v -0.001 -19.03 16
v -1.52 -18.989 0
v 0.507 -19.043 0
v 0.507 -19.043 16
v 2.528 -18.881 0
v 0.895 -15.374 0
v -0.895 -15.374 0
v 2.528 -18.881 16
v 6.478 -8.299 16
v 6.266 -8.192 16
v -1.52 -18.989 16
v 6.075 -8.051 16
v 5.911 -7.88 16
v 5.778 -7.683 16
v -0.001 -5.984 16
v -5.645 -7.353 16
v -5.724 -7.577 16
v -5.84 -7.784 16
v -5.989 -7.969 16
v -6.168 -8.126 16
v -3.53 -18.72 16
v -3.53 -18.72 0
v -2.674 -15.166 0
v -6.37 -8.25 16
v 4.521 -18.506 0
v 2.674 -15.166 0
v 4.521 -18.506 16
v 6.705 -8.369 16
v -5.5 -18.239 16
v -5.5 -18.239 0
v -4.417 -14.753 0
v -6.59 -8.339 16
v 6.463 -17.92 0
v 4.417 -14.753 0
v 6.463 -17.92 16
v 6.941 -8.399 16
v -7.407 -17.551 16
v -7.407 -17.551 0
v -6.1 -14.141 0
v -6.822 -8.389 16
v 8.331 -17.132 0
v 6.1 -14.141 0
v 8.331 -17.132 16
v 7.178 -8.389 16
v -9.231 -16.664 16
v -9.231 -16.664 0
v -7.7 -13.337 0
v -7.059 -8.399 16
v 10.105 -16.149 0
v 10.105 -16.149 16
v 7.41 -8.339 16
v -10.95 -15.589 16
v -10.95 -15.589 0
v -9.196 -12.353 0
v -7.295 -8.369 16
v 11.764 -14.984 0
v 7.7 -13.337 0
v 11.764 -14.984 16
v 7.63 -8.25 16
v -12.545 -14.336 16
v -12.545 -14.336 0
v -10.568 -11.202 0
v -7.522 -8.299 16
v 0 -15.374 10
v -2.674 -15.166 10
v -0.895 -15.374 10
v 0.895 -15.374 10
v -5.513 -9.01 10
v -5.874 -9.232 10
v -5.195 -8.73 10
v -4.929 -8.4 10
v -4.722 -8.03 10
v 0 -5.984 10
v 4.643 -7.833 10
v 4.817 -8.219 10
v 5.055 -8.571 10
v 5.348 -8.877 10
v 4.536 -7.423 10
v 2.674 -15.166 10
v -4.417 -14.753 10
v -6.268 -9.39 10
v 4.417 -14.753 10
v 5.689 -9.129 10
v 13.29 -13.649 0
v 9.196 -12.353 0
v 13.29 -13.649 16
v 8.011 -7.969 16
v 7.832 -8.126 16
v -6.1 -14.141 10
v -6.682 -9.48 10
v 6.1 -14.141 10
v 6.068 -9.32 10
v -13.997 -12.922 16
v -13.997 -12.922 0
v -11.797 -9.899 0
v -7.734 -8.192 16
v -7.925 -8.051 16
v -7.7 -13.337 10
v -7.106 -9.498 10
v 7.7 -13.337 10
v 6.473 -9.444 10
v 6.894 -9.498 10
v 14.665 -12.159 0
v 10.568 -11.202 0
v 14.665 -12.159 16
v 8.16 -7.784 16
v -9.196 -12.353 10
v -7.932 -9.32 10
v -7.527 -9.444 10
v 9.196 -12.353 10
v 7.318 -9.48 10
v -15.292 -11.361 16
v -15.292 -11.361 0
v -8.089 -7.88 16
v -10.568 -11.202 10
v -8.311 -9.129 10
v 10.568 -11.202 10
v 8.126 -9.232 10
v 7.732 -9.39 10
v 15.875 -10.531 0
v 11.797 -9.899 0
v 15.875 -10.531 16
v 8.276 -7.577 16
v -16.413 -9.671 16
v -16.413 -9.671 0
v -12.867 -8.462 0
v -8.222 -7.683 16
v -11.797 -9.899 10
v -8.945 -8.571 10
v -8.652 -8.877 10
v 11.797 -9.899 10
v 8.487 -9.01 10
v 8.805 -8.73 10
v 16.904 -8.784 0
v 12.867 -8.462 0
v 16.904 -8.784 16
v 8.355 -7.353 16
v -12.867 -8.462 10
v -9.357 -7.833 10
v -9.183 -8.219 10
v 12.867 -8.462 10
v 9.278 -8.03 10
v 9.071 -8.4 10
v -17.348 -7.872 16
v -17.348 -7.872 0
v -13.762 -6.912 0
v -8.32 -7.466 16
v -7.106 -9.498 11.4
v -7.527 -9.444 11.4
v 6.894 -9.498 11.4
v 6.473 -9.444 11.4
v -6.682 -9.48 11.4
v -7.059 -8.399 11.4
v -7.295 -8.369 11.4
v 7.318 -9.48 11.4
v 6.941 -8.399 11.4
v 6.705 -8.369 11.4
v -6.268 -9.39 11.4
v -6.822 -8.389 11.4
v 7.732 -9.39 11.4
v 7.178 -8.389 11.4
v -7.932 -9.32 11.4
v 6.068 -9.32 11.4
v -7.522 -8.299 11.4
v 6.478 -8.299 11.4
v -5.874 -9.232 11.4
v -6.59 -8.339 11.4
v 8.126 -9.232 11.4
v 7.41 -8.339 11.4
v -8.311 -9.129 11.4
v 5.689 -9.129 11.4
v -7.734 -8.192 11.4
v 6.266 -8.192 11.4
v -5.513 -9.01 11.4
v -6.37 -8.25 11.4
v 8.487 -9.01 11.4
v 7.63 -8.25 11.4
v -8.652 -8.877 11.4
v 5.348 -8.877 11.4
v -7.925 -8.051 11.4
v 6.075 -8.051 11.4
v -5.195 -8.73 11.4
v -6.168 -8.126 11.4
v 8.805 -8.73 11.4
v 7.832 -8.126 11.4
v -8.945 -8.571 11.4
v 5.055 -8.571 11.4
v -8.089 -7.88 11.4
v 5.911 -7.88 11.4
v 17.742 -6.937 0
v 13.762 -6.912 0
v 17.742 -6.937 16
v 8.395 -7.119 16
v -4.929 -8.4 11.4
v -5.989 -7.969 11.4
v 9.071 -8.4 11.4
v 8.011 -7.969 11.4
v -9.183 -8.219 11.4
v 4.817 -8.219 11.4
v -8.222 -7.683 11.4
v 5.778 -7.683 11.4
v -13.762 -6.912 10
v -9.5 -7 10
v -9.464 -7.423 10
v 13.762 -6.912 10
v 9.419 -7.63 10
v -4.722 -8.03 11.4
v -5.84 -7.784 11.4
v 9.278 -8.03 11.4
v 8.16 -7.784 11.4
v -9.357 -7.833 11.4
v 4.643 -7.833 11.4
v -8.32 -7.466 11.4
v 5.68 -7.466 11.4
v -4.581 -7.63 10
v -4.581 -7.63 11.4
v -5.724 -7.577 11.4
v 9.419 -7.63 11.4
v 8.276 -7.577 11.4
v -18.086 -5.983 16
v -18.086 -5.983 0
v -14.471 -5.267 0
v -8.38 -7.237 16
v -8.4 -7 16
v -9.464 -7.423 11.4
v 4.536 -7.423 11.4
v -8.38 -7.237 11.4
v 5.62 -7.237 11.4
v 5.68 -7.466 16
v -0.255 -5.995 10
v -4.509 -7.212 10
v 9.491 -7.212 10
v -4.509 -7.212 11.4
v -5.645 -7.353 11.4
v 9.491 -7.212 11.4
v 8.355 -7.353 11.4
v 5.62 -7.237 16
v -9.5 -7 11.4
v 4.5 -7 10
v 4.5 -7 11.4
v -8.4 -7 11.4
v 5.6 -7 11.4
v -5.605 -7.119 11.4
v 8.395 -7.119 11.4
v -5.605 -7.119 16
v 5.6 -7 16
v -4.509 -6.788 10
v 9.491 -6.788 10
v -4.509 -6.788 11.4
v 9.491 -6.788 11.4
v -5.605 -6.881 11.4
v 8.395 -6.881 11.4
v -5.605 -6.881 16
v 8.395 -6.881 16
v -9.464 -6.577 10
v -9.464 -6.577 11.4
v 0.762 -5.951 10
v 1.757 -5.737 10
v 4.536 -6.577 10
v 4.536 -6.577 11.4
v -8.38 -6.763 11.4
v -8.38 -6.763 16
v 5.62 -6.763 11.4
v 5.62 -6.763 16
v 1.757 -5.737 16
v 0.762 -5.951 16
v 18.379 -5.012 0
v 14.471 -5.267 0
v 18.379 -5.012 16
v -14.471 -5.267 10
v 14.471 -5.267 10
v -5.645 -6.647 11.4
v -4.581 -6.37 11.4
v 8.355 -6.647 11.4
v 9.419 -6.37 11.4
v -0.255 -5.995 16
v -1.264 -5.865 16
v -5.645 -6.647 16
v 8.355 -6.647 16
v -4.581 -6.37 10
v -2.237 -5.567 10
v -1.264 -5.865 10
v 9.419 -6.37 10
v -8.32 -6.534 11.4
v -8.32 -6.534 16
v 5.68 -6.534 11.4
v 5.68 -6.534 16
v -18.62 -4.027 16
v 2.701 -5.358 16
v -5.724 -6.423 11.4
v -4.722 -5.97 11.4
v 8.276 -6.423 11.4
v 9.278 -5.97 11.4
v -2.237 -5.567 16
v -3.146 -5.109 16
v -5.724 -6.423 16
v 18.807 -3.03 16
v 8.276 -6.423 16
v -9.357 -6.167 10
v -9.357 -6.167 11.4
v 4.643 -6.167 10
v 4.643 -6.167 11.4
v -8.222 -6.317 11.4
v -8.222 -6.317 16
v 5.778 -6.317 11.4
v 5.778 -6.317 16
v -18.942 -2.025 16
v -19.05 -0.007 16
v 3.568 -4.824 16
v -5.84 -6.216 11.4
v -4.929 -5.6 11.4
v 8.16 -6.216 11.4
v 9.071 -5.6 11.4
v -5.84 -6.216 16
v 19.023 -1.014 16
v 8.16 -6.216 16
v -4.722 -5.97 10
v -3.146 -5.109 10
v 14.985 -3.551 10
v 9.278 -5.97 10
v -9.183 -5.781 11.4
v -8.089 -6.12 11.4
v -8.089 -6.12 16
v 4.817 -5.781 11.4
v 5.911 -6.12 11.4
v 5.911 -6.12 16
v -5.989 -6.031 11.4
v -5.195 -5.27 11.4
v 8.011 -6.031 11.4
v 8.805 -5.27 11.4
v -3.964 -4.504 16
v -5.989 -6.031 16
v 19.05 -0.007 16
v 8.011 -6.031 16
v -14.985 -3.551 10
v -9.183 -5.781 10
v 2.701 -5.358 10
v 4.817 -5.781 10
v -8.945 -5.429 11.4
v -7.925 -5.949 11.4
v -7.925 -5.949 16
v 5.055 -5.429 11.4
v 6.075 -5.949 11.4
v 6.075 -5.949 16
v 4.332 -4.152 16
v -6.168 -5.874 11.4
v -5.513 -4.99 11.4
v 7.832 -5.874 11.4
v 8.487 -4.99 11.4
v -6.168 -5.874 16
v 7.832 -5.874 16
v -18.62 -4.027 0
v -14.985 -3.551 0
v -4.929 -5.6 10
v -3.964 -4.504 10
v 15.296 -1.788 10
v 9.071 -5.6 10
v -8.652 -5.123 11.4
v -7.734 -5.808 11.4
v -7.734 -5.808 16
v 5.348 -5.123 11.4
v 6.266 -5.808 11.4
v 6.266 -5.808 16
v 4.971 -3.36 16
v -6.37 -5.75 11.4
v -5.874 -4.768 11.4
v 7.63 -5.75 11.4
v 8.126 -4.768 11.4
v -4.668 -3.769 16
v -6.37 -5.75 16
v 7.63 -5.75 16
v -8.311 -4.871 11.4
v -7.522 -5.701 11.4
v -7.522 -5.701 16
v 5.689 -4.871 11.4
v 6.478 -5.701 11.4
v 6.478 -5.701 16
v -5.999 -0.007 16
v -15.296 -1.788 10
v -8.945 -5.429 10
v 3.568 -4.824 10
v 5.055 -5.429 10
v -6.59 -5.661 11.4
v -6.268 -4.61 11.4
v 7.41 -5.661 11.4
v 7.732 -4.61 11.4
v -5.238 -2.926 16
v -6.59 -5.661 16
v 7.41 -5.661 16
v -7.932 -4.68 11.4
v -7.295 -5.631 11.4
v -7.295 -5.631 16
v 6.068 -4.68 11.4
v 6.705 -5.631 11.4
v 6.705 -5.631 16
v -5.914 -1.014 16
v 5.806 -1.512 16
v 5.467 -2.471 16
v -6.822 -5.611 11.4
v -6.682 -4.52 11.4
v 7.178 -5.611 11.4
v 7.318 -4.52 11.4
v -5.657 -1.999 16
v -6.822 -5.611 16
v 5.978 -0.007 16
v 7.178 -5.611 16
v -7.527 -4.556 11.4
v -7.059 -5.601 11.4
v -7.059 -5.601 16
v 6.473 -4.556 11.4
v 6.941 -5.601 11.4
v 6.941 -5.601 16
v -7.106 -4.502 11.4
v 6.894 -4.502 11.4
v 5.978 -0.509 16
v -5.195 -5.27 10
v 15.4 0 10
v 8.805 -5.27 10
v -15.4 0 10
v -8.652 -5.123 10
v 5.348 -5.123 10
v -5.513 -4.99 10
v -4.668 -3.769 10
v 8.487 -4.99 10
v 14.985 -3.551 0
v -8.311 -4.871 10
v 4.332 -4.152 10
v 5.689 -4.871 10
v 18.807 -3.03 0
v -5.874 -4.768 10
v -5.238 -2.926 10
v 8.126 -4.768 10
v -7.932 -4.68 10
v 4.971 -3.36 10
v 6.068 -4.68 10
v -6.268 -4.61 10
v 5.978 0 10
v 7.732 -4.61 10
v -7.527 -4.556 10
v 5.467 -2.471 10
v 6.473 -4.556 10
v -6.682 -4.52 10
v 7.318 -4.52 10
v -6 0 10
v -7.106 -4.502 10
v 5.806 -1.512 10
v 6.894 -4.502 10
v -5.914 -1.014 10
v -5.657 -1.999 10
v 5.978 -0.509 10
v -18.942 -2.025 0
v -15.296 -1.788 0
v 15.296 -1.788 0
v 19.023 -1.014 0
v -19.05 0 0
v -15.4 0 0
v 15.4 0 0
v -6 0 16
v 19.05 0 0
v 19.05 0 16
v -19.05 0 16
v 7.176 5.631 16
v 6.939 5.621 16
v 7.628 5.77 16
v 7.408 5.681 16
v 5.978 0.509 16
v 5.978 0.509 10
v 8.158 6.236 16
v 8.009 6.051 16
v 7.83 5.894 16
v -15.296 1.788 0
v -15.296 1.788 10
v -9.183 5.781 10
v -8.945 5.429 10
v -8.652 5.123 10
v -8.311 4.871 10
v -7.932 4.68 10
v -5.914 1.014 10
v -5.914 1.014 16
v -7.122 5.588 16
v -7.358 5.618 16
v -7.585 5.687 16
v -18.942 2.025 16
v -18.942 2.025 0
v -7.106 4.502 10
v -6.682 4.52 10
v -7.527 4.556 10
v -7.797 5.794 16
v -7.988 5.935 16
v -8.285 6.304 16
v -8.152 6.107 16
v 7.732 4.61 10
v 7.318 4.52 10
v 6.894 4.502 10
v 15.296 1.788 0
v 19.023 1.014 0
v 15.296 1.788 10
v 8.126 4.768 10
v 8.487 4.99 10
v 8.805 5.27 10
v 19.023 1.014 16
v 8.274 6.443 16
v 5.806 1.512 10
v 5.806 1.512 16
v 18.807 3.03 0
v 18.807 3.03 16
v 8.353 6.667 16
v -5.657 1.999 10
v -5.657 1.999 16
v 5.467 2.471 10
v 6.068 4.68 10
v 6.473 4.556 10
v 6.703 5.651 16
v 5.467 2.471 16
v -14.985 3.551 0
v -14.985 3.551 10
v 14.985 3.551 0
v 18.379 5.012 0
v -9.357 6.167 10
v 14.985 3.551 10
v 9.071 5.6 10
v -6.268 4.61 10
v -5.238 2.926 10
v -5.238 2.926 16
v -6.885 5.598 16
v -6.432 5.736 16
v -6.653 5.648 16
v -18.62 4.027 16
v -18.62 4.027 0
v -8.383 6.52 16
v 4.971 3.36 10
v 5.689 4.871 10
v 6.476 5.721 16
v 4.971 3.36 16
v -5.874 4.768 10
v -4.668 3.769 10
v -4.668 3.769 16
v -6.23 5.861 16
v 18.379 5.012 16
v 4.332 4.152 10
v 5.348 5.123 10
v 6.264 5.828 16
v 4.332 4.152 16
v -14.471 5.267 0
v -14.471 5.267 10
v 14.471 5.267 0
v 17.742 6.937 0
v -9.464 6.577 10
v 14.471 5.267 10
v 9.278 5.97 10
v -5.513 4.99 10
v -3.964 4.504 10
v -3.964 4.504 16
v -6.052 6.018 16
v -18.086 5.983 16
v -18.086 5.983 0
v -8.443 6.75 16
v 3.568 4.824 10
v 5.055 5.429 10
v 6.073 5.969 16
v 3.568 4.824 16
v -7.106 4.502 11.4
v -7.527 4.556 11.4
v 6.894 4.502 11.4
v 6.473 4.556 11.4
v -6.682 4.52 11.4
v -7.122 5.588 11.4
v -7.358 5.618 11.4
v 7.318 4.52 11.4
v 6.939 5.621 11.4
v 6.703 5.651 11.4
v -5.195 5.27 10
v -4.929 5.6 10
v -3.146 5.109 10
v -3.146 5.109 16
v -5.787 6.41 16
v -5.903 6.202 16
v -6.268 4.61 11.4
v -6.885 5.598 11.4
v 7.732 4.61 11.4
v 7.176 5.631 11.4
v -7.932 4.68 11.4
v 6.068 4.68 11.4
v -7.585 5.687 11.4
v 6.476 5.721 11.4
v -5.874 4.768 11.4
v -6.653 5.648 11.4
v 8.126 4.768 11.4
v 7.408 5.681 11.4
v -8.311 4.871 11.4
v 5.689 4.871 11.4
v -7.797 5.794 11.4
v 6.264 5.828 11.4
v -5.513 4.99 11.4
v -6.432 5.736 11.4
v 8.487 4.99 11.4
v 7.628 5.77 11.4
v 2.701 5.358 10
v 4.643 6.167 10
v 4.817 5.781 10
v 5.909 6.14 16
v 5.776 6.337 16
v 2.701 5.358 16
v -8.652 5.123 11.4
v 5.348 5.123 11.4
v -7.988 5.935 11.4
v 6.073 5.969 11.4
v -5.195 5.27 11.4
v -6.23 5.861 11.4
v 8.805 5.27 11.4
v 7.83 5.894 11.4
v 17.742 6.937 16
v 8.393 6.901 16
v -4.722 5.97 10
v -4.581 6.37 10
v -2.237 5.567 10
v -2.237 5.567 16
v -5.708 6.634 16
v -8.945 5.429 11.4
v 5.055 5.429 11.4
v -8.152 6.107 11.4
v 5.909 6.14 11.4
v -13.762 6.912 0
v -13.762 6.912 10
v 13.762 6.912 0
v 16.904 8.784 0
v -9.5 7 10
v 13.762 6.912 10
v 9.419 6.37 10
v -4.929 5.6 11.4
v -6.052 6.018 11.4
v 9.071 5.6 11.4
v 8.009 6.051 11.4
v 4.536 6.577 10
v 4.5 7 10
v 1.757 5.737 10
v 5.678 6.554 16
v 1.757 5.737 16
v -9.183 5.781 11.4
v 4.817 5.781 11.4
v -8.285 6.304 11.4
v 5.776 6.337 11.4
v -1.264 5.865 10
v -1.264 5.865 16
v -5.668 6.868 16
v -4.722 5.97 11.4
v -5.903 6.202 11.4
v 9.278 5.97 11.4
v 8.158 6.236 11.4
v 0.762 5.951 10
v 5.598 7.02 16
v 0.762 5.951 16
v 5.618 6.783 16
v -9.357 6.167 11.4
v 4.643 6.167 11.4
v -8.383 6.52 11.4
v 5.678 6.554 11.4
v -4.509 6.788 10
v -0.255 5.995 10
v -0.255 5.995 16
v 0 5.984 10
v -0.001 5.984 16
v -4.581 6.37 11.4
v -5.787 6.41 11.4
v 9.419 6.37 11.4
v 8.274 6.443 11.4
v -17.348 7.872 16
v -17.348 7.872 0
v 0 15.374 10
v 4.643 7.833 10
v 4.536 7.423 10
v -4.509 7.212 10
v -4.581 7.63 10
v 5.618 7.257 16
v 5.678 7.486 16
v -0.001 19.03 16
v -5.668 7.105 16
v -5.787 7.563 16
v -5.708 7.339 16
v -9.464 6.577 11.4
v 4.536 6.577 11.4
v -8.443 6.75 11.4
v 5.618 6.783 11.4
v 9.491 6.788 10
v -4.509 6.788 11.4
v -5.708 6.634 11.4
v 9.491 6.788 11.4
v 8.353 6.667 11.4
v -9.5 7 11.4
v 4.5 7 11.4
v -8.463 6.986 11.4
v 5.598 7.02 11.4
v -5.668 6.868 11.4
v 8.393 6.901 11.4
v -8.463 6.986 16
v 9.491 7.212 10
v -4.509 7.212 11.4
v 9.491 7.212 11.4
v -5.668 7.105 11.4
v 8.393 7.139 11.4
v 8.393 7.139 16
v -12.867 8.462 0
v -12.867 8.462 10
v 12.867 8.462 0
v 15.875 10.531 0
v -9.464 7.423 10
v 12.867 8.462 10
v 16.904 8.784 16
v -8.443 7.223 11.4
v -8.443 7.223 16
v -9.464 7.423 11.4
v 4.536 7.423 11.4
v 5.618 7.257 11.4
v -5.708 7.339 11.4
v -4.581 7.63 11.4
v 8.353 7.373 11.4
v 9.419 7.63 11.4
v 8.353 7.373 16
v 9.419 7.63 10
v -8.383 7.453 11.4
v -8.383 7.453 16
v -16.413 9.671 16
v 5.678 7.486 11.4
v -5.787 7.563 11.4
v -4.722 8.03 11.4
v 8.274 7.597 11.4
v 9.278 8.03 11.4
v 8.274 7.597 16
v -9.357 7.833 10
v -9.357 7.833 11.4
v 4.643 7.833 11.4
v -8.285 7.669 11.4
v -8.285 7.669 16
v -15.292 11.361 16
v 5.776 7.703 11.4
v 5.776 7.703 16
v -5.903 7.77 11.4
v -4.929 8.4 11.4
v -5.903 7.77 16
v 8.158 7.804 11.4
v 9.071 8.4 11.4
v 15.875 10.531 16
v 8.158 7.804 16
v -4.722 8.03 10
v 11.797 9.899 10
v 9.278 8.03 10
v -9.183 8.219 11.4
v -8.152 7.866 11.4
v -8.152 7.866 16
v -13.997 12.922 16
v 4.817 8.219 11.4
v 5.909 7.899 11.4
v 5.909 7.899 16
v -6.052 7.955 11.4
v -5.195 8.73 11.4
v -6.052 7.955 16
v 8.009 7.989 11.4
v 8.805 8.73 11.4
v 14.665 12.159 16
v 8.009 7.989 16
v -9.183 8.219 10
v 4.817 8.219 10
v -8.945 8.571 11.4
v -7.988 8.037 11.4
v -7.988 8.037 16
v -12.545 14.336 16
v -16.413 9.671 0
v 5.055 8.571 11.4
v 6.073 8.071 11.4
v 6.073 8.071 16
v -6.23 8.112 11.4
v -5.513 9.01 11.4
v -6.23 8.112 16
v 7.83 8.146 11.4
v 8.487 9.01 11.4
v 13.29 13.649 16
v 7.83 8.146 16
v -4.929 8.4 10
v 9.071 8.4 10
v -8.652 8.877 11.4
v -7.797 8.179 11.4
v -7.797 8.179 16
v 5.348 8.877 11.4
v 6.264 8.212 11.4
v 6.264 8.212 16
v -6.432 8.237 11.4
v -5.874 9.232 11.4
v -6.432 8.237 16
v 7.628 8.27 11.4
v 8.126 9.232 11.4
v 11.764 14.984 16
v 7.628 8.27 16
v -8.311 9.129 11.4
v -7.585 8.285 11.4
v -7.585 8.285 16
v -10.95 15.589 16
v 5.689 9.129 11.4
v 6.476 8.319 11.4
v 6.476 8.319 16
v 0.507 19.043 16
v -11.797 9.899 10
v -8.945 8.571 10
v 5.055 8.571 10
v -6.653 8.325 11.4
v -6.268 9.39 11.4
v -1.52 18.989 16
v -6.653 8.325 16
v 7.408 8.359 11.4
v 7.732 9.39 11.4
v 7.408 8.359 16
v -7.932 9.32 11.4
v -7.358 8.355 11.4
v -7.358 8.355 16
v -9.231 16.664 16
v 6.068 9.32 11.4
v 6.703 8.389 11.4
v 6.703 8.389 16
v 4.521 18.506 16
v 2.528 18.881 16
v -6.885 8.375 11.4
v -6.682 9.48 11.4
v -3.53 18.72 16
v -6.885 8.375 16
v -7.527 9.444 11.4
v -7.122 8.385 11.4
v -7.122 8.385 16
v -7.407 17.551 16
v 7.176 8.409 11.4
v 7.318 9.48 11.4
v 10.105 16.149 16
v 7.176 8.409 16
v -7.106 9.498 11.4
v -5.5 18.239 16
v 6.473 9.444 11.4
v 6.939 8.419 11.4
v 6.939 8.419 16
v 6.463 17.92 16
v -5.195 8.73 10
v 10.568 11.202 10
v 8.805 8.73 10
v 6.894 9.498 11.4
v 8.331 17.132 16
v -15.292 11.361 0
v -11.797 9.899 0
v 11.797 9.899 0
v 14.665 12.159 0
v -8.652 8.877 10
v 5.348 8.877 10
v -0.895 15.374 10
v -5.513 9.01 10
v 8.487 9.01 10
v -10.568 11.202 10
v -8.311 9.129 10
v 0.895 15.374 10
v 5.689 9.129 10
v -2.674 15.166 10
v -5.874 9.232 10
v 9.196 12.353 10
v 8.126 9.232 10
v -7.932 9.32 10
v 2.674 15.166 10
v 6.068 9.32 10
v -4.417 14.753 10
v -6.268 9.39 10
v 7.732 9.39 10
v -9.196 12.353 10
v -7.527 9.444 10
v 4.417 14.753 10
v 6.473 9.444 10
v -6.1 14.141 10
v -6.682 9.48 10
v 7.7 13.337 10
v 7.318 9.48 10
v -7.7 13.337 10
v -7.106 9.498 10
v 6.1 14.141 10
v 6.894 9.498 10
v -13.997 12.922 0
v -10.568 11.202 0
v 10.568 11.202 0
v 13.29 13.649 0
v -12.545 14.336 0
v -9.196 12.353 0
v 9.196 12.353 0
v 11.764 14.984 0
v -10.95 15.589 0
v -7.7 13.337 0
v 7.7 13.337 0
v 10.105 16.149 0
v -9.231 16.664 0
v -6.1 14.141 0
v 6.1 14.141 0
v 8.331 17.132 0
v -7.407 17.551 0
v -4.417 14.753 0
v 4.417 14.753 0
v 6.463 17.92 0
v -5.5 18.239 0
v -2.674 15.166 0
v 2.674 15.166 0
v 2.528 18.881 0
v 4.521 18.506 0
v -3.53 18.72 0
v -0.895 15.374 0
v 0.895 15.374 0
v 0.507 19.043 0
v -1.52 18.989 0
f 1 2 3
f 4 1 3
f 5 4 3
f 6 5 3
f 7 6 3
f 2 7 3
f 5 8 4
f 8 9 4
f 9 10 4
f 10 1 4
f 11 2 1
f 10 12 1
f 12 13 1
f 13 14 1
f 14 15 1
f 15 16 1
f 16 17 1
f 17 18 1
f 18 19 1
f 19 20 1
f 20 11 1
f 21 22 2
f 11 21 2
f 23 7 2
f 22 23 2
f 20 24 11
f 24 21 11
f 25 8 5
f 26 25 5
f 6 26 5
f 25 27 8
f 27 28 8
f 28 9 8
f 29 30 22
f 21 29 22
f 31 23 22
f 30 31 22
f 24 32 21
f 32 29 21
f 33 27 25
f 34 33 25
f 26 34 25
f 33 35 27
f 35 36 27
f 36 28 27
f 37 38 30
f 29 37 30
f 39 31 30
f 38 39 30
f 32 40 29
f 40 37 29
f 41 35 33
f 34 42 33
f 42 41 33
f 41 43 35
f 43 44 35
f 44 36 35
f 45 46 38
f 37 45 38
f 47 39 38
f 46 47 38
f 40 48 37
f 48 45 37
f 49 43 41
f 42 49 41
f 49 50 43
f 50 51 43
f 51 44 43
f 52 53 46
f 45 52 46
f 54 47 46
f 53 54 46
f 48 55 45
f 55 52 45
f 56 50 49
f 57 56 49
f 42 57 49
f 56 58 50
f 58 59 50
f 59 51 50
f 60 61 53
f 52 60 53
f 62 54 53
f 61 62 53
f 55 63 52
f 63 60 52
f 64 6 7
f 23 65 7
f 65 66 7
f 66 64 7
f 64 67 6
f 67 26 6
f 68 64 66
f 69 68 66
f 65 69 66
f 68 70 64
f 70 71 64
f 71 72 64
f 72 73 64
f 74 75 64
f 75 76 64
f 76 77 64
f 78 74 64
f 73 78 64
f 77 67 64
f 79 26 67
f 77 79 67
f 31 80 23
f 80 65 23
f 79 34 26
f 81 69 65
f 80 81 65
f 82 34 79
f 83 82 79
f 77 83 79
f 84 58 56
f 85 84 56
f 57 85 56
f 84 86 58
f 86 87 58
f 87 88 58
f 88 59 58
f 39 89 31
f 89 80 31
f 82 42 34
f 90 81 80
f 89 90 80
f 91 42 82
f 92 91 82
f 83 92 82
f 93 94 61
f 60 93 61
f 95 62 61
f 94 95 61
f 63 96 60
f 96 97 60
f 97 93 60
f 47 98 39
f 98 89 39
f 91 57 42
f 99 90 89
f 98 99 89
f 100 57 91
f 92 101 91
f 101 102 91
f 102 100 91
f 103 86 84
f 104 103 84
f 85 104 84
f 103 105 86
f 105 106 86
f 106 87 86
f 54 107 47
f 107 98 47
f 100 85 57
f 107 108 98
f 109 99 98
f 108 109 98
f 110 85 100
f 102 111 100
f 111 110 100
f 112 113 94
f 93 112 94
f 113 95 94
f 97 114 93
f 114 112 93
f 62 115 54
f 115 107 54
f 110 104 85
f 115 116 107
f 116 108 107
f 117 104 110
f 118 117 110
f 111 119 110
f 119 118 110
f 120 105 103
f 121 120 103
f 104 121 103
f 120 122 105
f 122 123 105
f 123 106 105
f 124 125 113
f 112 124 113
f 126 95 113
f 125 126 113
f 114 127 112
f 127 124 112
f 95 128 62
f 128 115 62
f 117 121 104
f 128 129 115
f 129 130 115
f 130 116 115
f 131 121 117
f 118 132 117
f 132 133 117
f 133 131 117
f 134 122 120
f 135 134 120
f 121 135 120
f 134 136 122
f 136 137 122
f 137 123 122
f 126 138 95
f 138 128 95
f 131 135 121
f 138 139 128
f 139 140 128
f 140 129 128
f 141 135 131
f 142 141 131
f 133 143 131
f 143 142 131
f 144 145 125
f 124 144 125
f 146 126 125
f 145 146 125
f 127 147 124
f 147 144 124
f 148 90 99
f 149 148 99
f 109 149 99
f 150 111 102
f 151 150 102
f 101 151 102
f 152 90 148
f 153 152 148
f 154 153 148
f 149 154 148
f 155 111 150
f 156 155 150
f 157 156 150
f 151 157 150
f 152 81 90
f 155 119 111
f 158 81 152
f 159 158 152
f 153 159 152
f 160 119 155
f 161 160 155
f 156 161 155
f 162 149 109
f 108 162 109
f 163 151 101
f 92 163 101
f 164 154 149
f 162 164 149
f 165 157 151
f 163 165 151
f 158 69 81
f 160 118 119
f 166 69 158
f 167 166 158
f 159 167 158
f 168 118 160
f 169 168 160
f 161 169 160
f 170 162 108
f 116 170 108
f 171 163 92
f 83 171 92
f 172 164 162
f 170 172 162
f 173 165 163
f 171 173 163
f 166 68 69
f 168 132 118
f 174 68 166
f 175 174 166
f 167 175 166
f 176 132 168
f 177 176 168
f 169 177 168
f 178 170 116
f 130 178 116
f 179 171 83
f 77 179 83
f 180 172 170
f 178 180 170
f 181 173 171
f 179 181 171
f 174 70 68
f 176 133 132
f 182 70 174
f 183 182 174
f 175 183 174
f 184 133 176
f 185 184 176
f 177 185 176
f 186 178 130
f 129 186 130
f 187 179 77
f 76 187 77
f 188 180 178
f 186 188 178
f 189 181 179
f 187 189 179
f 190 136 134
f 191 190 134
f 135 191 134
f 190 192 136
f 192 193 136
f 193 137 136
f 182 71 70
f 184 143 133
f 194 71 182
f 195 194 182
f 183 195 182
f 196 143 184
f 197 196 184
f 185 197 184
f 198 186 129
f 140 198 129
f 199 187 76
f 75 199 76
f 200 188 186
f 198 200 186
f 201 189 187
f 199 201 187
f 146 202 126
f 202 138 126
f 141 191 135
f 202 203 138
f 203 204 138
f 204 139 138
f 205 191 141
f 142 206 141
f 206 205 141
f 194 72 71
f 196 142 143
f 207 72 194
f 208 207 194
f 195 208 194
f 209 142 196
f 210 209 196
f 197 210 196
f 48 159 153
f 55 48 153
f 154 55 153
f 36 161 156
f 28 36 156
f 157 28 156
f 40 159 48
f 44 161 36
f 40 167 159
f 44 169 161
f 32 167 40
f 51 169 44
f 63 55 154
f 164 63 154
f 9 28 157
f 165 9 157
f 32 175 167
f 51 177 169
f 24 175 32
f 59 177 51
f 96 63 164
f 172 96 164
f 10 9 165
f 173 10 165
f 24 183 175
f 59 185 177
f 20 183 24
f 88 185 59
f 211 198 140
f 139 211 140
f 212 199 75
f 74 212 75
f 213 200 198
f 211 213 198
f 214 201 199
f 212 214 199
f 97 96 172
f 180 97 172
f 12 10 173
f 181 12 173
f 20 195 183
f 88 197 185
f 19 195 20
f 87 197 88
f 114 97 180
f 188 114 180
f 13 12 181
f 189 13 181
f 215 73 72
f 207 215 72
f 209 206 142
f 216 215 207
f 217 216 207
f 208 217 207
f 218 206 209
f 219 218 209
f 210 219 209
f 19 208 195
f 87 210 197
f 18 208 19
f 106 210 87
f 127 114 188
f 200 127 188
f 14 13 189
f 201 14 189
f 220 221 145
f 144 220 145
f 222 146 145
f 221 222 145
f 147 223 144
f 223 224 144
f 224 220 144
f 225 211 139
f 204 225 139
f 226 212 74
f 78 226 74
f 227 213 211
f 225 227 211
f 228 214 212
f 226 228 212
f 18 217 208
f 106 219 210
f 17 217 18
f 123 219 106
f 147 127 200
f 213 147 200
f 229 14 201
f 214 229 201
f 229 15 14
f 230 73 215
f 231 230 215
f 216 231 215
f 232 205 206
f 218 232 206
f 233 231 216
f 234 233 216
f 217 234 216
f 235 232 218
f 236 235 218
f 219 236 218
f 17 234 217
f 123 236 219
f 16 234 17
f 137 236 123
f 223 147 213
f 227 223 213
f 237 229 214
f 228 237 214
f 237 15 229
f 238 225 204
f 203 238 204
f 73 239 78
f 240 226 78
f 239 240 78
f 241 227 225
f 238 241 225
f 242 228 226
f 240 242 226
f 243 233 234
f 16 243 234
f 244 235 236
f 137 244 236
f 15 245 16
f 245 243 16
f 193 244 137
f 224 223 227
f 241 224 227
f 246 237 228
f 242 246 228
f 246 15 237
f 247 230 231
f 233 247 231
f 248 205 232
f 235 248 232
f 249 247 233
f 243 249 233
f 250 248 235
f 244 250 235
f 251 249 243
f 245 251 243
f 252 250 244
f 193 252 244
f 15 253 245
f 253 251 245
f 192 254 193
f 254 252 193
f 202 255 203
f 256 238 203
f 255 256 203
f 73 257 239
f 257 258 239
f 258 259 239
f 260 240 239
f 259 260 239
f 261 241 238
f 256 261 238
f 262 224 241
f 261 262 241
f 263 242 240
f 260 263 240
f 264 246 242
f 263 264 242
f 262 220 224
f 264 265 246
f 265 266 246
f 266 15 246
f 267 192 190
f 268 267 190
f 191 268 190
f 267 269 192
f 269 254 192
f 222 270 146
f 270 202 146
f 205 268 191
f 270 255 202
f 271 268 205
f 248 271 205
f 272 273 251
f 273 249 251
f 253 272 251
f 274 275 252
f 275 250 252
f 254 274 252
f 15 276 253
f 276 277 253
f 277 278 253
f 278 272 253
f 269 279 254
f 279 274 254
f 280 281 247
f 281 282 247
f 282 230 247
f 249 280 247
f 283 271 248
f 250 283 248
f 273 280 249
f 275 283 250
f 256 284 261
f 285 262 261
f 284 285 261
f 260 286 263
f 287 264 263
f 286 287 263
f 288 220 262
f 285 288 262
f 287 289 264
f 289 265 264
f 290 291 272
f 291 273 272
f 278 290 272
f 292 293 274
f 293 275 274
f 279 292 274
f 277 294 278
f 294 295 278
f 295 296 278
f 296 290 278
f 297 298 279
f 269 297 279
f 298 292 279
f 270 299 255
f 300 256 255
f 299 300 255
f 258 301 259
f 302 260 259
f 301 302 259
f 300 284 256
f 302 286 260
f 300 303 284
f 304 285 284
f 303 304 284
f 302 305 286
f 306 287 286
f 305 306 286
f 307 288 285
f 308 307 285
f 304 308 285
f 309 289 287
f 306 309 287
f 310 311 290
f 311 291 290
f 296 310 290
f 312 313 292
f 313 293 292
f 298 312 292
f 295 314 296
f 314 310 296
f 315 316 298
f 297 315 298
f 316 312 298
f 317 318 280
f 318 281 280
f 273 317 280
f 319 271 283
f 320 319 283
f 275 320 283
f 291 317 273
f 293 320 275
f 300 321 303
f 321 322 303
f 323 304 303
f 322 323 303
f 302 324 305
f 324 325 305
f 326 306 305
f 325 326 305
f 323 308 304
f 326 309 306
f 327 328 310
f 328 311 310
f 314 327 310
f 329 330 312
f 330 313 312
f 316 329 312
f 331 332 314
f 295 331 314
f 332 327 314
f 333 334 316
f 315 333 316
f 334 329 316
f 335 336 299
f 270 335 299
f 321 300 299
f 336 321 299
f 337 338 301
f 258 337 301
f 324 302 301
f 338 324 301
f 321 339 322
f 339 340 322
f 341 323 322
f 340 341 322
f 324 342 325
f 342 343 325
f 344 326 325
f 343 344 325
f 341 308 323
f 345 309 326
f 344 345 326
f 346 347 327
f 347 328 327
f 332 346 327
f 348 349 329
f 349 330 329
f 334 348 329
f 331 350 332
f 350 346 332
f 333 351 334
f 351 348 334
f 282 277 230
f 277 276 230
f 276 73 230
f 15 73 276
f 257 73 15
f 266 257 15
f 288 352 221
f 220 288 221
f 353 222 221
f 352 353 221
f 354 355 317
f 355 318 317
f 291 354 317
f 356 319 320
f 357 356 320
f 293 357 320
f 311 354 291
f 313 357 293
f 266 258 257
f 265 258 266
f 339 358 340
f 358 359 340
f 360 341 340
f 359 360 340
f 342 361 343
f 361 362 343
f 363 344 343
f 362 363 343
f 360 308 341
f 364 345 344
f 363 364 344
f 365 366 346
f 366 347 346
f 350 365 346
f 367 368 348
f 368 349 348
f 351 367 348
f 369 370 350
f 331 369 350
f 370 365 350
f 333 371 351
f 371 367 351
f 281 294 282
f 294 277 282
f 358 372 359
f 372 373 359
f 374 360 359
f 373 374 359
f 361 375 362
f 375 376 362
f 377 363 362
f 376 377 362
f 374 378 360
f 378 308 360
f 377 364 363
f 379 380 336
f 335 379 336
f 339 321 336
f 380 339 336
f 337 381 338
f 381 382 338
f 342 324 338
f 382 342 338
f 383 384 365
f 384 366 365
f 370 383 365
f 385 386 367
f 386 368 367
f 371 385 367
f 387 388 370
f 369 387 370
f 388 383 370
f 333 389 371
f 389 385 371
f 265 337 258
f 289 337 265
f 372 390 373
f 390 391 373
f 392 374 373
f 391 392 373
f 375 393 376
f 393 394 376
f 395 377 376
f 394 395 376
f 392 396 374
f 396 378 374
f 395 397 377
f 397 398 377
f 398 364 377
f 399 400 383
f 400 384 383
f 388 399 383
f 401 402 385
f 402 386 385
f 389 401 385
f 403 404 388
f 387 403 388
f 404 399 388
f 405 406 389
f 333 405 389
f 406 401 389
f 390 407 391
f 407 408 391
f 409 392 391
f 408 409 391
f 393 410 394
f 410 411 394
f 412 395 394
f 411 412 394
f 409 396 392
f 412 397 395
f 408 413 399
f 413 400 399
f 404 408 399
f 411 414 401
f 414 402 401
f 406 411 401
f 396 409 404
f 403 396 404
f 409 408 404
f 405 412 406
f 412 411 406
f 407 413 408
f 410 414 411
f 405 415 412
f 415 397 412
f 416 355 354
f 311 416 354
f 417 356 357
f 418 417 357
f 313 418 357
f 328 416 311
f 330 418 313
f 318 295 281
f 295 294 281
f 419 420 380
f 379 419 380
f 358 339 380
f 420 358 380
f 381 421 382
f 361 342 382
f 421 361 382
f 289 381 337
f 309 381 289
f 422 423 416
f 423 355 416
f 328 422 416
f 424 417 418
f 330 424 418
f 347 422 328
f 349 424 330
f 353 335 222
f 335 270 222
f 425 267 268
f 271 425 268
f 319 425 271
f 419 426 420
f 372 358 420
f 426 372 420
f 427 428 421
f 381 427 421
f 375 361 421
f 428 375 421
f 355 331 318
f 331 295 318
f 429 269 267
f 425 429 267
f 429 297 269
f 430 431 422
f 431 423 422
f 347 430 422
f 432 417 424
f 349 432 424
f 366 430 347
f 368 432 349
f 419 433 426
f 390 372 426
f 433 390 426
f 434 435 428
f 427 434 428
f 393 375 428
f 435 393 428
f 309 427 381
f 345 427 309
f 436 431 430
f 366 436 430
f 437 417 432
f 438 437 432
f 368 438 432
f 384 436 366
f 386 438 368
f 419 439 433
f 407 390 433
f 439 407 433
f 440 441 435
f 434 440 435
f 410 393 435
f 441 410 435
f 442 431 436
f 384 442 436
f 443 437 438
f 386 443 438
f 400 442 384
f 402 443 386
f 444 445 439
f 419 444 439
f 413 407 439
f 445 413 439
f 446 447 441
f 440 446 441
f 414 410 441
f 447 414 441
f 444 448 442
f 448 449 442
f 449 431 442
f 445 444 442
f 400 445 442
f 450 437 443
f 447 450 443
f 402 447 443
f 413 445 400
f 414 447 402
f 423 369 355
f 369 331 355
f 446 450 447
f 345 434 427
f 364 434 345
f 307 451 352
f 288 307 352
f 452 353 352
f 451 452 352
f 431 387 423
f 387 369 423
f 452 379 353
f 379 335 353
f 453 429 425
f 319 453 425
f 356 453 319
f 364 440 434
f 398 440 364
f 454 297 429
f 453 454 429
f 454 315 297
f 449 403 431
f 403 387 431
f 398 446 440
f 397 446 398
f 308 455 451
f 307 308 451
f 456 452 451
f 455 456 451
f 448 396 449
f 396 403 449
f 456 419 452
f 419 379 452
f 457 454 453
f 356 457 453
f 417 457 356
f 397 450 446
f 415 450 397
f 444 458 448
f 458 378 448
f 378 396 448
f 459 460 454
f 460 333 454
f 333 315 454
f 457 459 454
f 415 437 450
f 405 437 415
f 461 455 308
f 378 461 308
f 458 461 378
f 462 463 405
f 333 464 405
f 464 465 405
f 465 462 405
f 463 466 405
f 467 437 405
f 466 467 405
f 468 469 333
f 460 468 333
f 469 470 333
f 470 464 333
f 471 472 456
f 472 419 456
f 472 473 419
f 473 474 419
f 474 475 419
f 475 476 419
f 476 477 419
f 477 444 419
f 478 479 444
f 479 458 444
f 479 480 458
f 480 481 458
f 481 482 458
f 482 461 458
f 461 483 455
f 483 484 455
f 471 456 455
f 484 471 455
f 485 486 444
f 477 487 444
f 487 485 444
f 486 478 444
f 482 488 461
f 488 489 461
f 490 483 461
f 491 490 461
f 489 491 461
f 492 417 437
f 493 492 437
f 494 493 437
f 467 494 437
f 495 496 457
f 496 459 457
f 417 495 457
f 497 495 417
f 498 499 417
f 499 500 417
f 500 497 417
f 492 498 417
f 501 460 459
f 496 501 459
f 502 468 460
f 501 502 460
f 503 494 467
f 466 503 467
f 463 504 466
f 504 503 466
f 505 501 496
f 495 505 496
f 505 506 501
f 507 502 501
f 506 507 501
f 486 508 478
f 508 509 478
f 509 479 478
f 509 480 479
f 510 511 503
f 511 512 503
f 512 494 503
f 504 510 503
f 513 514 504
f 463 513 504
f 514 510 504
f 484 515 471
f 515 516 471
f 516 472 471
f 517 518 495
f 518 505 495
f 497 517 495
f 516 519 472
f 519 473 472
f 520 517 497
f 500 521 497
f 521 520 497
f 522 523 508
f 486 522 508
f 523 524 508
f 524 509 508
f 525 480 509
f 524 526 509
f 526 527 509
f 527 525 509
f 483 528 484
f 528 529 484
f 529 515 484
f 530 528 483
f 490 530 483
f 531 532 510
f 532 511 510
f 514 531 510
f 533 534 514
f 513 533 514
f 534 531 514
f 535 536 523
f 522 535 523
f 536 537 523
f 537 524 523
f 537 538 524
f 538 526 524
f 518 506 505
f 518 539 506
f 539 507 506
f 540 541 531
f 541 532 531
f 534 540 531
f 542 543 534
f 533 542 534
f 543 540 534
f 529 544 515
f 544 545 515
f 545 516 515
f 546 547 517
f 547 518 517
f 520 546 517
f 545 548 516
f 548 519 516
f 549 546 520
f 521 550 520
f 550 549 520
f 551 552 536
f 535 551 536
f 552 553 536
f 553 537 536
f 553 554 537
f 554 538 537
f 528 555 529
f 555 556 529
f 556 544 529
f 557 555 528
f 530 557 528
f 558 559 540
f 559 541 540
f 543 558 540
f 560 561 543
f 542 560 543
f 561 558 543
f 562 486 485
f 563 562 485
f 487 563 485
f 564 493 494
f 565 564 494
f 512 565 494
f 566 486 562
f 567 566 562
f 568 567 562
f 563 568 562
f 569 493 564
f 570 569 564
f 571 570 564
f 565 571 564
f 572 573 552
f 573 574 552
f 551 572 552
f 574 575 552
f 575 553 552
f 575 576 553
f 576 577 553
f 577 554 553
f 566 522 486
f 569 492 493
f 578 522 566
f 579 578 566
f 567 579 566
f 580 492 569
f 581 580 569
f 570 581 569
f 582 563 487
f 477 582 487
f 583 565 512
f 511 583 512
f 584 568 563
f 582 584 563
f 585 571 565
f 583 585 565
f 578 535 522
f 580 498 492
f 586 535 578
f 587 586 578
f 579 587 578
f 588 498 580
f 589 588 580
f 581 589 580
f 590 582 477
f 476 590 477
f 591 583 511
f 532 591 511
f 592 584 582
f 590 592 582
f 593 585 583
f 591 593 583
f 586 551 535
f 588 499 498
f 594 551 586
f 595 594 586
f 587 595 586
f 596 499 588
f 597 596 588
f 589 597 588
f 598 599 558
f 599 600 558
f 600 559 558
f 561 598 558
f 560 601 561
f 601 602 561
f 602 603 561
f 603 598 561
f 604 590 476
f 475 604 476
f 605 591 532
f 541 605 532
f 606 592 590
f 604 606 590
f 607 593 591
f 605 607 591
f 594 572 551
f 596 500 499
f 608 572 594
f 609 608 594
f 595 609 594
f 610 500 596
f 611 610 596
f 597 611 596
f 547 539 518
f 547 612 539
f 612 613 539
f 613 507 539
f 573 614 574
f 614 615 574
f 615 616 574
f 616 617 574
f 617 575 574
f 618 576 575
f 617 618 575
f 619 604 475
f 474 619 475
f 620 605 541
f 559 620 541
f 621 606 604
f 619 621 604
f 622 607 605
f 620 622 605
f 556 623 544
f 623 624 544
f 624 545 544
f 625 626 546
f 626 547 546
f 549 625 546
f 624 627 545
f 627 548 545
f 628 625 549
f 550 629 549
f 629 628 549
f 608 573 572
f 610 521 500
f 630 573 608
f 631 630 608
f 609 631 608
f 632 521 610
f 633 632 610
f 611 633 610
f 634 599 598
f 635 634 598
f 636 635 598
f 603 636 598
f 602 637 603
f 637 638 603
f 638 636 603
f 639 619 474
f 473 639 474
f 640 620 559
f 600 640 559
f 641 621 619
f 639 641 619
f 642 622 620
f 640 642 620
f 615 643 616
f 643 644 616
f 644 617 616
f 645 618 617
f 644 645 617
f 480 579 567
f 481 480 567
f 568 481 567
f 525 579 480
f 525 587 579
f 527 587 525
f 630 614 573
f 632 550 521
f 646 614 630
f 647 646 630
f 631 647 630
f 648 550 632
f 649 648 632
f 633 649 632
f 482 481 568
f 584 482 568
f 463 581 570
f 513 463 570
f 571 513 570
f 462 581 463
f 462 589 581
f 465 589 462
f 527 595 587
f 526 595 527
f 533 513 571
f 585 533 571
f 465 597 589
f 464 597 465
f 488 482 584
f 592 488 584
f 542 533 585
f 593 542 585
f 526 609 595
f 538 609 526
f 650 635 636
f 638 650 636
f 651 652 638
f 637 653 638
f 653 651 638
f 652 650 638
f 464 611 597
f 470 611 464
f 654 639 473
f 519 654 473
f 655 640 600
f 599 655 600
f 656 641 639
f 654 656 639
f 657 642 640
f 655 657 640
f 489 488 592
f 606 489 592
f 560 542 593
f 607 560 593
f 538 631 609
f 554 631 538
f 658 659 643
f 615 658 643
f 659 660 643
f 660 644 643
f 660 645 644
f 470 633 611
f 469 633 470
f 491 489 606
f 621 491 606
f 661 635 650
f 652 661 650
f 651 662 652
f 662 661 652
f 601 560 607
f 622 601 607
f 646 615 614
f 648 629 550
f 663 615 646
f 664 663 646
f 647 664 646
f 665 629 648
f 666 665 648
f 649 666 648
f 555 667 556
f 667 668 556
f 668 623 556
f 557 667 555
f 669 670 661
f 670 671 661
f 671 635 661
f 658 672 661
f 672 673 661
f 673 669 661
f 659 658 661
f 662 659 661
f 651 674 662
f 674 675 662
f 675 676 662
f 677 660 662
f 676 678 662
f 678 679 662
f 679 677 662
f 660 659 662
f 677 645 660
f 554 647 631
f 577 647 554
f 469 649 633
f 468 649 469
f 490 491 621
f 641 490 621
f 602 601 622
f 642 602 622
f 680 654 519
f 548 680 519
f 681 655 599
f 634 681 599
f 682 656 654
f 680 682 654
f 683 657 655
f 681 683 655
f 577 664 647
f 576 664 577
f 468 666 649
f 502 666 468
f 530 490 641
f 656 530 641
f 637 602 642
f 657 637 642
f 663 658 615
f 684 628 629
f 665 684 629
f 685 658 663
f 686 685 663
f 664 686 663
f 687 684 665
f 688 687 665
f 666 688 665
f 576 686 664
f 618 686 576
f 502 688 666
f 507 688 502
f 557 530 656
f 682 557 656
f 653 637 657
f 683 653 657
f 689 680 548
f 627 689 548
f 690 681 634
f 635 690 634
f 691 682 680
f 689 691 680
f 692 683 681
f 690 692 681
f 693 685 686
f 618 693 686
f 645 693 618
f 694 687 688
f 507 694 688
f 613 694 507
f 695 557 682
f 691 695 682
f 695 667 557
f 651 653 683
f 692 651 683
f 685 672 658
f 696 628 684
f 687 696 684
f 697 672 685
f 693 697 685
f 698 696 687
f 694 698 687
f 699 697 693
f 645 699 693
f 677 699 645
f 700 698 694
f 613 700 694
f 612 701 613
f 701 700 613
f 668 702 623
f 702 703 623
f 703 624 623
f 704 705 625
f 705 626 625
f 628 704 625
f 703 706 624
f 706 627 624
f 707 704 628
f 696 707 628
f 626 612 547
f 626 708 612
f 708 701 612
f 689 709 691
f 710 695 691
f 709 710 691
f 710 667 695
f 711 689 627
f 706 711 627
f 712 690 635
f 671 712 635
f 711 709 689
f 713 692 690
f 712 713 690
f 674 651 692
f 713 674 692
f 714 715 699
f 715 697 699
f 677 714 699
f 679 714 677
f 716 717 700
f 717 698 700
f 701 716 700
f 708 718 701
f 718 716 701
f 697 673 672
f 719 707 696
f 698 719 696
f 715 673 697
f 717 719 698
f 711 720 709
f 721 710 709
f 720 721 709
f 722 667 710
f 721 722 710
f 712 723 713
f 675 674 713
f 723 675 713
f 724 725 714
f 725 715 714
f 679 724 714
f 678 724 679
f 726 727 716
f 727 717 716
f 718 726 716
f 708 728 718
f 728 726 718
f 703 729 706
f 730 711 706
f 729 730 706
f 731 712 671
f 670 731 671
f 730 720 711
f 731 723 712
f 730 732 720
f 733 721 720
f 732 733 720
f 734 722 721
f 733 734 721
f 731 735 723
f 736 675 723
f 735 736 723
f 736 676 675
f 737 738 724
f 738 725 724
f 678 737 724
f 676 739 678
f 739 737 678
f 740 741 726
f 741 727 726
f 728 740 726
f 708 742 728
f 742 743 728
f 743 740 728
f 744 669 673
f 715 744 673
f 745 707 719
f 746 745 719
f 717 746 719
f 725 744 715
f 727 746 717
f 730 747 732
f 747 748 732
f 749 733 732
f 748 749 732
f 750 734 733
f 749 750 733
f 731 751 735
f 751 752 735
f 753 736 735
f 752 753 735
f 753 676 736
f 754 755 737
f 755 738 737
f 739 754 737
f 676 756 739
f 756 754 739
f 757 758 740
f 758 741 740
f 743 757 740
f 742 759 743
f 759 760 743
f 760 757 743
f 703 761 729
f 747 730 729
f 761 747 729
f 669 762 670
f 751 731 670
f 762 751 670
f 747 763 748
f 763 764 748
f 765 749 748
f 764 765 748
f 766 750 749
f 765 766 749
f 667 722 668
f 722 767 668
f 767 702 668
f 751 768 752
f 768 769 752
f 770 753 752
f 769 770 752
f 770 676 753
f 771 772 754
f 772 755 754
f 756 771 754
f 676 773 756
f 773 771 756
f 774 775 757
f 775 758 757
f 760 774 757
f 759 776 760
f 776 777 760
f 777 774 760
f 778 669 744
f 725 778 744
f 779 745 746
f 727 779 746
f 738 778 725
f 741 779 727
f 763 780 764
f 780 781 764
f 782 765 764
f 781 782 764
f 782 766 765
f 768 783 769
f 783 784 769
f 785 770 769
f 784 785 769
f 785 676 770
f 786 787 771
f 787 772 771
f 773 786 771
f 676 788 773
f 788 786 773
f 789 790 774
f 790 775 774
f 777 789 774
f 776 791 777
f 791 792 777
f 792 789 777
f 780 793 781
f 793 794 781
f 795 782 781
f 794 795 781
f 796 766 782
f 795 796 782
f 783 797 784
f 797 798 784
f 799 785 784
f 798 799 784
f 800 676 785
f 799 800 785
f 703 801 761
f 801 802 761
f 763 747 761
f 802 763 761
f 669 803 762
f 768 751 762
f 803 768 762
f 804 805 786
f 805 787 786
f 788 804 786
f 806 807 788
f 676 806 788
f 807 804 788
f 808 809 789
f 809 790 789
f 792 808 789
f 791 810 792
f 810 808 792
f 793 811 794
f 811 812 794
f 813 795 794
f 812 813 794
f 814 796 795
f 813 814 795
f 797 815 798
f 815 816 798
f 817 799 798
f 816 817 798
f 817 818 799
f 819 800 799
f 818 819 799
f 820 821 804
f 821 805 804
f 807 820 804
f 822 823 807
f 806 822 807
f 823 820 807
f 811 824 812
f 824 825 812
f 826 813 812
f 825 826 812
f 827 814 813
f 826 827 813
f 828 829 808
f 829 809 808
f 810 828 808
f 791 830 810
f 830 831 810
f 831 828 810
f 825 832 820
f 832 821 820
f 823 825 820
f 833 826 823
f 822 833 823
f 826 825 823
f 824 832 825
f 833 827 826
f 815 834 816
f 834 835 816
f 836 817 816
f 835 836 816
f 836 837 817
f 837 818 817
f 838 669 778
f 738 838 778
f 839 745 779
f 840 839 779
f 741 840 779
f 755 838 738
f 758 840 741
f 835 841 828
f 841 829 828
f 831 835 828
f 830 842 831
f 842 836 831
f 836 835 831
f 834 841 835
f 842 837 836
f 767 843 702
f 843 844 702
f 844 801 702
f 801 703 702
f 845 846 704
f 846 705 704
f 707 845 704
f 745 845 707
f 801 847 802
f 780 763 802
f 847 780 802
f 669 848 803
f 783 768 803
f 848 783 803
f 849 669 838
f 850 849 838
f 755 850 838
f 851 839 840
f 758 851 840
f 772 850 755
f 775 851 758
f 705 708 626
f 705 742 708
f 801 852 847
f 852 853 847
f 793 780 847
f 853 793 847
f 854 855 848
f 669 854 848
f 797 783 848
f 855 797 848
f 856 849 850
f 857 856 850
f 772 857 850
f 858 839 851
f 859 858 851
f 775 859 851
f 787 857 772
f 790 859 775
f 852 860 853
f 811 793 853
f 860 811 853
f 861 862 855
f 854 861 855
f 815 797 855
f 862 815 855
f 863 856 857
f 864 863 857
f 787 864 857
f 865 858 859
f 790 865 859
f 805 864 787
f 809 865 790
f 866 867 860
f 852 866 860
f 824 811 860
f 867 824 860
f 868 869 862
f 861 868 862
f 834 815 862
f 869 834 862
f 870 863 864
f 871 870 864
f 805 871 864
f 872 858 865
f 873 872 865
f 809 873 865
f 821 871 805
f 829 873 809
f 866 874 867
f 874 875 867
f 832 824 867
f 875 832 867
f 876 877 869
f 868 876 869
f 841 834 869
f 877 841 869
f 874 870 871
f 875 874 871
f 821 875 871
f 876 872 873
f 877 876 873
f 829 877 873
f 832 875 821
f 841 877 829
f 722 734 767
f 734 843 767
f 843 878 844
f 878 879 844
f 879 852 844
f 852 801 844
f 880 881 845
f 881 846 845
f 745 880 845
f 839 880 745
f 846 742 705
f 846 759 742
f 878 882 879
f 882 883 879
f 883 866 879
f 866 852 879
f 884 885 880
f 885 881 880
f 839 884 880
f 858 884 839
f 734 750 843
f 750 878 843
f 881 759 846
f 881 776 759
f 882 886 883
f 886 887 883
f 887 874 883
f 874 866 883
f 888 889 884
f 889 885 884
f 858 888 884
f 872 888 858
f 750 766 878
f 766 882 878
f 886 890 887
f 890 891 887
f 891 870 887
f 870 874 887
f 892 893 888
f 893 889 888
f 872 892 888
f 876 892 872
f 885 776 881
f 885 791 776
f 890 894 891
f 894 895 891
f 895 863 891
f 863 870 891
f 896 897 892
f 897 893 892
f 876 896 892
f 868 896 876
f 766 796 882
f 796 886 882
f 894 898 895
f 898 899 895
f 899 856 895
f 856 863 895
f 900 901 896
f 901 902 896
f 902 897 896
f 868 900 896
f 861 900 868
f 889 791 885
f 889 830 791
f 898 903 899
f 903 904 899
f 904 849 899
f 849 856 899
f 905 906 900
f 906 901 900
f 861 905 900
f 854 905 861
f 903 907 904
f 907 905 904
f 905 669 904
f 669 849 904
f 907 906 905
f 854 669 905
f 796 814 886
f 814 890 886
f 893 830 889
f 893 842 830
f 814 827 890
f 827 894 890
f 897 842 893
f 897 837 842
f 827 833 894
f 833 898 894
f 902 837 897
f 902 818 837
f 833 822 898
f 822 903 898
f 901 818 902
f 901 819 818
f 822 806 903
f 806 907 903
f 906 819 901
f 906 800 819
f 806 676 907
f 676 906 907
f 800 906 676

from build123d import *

# Parameters (mm, degrees)
SKETCH1_R           = 19.05
BOSS_EXTRUDE1_DEPTH = 16
SKETCH2_R           = 15.4
CUT_EXTRUDE1_DEPTH  = 10
SKETCH4_R           = 2.5
CUT_EXTRUDE3_DEPTH  = 1.4
SKETCH5_R           = 1.4
CUT_EXTRUDE4_DEPTH  = 5.6
SKETCH6_R           = 1.4
CUT_EXTRUDE5_DEPTH  = 5.6
SKETCH9_R           = 1.4
CUT_EXTRUDE8_DEPTH  = 5.6
SKETCH10_R          = 1.4
CUT_EXTRUDE9_DEPTH  = 5.6
SKETCH11_R          = 6
CUT_EXTRUDE11_DEPTH = 7


with BuildPart() as part:
    # Sketch1 → Boss-Extrude1 (new body)
    with BuildSketch(Plane.XY):
        Circle(SKETCH1_R)
    extrude(amount=BOSS_EXTRUDE1_DEPTH)

    # Sketch2 → Cut-Extrude1 (cut)
    with BuildSketch(Plane(origin=(0, 0, 0), x_dir=(-1, 0, 0), z_dir=(0, 0, -1))):
        Circle(SKETCH2_R)
    extrude(amount=-CUT_EXTRUDE1_DEPTH, mode=Mode.SUBTRACT)

    # Sketch4 → Cut-Extrude3 (cut)
    with BuildSketch(Plane(origin=(0, 0, 10), x_dir=(-1, 0, 0), z_dir=(0, 0, -1))):
        with Locations((-7, 7)):
            Circle(SKETCH4_R)
        with Locations((7, 7)):
            Circle(SKETCH4_R)
        with Locations((7, -7)):
            Circle(SKETCH4_R)
        with Locations((-7, -7)):
            Circle(SKETCH4_R)
    extrude(amount=-CUT_EXTRUDE3_DEPTH, mode=Mode.SUBTRACT)

    # Sketch5 → Cut-Extrude4 (cut, through all)
    with BuildSketch(Plane(origin=(0, 0, 11.4), x_dir=(-1, 0, 0), z_dir=(0, 0, -1))):
        with Locations((-6.998002378, 7.019977132)):
            Circle(SKETCH5_R)
    extrude(amount=-CUT_EXTRUDE4_DEPTH, mode=Mode.SUBTRACT)

    # Sketch6 → Cut-Extrude5 (cut, through all)
    with BuildSketch(Plane(origin=(0, 0, 11.4), x_dir=(-1, 0, 0), z_dir=(0, 0, -1))):
        with Locations((7.062657108, 6.986426582)):
            Circle(SKETCH6_R)
    extrude(amount=-CUT_EXTRUDE5_DEPTH, mode=Mode.SUBTRACT)

    # Sketch9 → Cut-Extrude8 (cut, through all)
    with BuildSketch(Plane(origin=(0, 0, 11.4), x_dir=(-1, 0, 0), z_dir=(0, 0, -1))):
        with Locations((-7, -7)):
            Circle(SKETCH9_R)
    extrude(amount=-CUT_EXTRUDE8_DEPTH, mode=Mode.SUBTRACT)

    # Sketch10 → Cut-Extrude9 (cut, through all)
    with BuildSketch(Plane(origin=(0, 0, 11.4), x_dir=(-1, 0, 0), z_dir=(0, 0, -1))):
        with Locations((7, -7)):
            Circle(SKETCH10_R)
    extrude(amount=-CUT_EXTRUDE9_DEPTH, mode=Mode.SUBTRACT)

    # Sketch11 → Cut-Extrude11 (cut, through all)
    with BuildSketch(Plane(origin=(0, 0, 10), x_dir=(-1, 0, 0), z_dir=(0, 0, -1))):
        Circle(SKETCH11_R)
    extrude(amount=-CUT_EXTRUDE11_DEPTH, mode=Mode.SUBTRACT)


solid = part.part
